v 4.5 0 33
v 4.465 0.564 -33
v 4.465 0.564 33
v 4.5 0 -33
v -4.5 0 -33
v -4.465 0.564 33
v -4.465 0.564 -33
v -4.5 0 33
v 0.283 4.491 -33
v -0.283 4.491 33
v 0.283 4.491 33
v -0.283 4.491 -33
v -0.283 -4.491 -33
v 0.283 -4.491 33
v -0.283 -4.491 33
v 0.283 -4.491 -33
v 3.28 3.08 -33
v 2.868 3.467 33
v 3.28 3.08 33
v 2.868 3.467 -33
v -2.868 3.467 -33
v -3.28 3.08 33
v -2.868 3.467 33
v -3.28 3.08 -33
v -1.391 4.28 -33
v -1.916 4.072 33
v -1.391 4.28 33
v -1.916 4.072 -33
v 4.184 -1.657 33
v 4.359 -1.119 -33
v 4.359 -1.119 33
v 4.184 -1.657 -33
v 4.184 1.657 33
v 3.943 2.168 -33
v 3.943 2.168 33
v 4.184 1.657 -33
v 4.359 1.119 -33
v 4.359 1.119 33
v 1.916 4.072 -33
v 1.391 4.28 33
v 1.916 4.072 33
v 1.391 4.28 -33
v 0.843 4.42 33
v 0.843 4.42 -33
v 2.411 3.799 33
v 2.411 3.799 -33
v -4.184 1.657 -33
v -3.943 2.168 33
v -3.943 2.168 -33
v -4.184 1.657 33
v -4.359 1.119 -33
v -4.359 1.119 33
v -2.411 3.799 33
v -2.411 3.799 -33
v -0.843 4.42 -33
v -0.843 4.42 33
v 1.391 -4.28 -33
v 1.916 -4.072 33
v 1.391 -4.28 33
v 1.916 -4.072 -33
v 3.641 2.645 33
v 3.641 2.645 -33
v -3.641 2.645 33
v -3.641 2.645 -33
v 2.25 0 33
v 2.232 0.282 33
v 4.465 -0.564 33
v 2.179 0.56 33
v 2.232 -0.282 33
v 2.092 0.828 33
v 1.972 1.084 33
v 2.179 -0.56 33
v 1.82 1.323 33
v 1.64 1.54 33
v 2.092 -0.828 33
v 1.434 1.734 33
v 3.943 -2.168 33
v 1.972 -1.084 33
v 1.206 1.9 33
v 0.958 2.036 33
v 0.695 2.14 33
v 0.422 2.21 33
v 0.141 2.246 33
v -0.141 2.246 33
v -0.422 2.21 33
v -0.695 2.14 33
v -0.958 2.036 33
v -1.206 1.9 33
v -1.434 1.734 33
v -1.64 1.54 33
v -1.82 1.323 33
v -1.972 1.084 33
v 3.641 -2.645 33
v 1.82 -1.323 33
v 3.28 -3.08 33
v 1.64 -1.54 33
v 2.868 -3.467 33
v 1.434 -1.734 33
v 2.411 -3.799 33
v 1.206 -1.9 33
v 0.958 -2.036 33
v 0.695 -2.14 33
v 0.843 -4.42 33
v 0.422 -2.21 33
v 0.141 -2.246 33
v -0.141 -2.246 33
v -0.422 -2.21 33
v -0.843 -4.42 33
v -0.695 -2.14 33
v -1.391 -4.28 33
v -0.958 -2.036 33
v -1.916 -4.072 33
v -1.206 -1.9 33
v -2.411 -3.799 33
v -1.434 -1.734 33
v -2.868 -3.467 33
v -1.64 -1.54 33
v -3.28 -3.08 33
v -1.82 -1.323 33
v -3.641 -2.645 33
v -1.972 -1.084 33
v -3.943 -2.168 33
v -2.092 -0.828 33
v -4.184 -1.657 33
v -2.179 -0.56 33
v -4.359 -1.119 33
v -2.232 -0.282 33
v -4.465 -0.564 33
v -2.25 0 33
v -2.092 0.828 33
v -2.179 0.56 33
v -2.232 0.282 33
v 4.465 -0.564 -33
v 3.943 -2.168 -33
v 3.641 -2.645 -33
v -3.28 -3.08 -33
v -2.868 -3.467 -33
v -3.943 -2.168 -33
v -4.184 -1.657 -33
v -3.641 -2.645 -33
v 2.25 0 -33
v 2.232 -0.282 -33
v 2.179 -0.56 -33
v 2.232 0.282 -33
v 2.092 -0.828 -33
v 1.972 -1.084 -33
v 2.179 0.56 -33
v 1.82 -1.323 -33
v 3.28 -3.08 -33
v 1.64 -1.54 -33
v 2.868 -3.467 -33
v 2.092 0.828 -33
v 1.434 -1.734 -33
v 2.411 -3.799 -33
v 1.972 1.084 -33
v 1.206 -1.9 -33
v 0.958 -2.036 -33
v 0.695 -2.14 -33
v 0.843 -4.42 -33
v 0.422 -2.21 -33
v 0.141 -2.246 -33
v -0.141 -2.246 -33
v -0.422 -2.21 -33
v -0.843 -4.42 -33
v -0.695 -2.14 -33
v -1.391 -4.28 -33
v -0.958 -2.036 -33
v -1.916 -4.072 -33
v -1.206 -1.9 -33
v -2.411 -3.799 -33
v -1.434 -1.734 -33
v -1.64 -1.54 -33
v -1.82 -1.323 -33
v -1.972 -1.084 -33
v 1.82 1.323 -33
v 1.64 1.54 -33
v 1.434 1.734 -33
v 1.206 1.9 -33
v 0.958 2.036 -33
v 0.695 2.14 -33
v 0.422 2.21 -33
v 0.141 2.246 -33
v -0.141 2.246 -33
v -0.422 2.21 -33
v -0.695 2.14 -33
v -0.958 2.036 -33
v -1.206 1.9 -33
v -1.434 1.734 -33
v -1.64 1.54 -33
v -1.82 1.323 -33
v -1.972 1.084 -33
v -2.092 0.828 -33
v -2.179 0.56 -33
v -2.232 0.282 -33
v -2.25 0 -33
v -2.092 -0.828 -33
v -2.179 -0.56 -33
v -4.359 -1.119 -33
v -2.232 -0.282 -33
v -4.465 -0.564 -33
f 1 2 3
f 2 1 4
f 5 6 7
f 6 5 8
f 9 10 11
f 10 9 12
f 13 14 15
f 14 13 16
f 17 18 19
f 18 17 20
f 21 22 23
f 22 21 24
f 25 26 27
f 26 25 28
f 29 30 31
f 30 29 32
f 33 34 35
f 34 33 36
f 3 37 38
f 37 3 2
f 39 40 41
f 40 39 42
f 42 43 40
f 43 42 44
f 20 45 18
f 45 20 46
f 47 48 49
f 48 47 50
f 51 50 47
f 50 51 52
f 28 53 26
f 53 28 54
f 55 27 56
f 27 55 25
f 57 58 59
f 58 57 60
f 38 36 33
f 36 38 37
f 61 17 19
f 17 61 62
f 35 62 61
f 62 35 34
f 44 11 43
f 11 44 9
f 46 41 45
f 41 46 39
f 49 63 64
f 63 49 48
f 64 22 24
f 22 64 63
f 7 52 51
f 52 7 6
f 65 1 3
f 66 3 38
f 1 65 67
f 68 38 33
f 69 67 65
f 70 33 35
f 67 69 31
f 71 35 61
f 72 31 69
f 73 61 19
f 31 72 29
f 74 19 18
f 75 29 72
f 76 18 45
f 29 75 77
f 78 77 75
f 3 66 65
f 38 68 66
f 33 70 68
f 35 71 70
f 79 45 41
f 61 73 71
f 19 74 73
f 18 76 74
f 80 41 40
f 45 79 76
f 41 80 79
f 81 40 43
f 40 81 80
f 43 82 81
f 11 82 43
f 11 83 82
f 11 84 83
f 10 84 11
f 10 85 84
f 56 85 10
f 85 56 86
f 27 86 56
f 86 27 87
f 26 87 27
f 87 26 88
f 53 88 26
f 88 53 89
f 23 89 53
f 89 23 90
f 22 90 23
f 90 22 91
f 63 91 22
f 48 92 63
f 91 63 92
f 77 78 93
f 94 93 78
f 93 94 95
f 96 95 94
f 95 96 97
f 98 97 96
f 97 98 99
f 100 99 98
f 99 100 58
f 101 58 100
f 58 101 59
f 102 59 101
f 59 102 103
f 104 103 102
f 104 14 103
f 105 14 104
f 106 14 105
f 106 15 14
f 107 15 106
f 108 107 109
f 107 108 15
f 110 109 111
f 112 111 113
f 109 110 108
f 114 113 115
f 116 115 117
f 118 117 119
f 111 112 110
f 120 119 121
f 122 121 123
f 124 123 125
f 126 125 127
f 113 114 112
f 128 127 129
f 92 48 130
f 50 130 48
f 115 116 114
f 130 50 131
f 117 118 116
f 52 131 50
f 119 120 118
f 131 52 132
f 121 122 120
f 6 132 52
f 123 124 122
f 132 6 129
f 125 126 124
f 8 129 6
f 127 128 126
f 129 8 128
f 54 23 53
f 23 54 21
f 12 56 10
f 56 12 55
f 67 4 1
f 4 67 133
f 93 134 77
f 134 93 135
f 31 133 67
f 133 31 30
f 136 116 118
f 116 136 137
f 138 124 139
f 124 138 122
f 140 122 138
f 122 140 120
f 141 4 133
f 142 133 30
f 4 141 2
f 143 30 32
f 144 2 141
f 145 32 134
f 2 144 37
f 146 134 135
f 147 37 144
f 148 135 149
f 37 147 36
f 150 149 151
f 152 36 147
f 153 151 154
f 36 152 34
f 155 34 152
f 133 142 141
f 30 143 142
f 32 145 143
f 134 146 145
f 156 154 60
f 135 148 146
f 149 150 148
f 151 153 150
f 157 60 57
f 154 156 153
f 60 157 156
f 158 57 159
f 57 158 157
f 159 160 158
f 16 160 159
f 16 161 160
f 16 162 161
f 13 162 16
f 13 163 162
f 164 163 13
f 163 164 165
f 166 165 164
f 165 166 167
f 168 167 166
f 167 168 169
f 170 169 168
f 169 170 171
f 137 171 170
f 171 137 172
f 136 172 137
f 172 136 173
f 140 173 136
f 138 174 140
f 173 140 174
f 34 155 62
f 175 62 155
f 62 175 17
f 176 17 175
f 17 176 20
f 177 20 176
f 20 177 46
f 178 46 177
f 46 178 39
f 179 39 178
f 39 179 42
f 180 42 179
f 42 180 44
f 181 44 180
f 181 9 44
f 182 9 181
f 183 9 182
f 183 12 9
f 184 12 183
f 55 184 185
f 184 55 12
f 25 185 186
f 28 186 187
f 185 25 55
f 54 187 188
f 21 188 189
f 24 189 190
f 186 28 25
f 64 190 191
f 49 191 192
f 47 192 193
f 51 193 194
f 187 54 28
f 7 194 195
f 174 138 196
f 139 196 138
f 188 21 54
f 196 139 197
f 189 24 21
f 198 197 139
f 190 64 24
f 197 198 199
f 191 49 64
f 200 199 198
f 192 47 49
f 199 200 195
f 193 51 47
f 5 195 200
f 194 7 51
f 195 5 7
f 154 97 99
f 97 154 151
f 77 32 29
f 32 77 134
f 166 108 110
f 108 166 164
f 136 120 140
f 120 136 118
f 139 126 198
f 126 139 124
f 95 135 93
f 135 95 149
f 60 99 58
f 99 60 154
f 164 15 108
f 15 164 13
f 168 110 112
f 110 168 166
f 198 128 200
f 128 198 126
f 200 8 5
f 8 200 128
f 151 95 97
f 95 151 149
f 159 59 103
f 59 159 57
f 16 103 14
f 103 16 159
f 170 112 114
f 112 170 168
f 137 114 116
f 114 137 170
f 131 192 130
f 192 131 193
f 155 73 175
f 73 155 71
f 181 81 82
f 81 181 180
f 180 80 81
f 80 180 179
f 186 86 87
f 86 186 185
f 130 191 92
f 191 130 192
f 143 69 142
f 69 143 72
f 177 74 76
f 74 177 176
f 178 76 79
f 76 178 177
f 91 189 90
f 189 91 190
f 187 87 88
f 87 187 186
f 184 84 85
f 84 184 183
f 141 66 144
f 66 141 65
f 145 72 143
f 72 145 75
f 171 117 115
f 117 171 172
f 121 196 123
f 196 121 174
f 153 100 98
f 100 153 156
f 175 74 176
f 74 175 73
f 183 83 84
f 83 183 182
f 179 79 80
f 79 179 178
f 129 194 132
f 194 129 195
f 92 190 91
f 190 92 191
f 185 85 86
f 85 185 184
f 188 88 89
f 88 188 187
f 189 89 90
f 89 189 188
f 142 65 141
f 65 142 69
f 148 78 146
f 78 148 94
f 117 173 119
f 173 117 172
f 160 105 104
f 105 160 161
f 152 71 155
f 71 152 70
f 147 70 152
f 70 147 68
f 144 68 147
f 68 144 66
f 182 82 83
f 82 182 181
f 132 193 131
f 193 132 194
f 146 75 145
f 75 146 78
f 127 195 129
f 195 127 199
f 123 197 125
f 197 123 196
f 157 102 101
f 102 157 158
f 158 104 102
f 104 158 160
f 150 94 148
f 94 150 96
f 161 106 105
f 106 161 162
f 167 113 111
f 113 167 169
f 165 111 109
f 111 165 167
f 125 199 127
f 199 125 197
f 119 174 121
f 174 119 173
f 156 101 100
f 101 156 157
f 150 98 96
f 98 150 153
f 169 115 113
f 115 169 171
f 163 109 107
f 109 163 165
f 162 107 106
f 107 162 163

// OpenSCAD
$fn = 50;


difference() {
	union() {
		translate(v = [0, 0, -33.0000000000]) {
			cylinder(h = 66, r = 4.5000000000);
		}
	}
	union() {
		translate(v = [0, 0, -100.0000000000]) {
			cylinder(h = 200, r = 2.2500000000);
		}
	}
}
